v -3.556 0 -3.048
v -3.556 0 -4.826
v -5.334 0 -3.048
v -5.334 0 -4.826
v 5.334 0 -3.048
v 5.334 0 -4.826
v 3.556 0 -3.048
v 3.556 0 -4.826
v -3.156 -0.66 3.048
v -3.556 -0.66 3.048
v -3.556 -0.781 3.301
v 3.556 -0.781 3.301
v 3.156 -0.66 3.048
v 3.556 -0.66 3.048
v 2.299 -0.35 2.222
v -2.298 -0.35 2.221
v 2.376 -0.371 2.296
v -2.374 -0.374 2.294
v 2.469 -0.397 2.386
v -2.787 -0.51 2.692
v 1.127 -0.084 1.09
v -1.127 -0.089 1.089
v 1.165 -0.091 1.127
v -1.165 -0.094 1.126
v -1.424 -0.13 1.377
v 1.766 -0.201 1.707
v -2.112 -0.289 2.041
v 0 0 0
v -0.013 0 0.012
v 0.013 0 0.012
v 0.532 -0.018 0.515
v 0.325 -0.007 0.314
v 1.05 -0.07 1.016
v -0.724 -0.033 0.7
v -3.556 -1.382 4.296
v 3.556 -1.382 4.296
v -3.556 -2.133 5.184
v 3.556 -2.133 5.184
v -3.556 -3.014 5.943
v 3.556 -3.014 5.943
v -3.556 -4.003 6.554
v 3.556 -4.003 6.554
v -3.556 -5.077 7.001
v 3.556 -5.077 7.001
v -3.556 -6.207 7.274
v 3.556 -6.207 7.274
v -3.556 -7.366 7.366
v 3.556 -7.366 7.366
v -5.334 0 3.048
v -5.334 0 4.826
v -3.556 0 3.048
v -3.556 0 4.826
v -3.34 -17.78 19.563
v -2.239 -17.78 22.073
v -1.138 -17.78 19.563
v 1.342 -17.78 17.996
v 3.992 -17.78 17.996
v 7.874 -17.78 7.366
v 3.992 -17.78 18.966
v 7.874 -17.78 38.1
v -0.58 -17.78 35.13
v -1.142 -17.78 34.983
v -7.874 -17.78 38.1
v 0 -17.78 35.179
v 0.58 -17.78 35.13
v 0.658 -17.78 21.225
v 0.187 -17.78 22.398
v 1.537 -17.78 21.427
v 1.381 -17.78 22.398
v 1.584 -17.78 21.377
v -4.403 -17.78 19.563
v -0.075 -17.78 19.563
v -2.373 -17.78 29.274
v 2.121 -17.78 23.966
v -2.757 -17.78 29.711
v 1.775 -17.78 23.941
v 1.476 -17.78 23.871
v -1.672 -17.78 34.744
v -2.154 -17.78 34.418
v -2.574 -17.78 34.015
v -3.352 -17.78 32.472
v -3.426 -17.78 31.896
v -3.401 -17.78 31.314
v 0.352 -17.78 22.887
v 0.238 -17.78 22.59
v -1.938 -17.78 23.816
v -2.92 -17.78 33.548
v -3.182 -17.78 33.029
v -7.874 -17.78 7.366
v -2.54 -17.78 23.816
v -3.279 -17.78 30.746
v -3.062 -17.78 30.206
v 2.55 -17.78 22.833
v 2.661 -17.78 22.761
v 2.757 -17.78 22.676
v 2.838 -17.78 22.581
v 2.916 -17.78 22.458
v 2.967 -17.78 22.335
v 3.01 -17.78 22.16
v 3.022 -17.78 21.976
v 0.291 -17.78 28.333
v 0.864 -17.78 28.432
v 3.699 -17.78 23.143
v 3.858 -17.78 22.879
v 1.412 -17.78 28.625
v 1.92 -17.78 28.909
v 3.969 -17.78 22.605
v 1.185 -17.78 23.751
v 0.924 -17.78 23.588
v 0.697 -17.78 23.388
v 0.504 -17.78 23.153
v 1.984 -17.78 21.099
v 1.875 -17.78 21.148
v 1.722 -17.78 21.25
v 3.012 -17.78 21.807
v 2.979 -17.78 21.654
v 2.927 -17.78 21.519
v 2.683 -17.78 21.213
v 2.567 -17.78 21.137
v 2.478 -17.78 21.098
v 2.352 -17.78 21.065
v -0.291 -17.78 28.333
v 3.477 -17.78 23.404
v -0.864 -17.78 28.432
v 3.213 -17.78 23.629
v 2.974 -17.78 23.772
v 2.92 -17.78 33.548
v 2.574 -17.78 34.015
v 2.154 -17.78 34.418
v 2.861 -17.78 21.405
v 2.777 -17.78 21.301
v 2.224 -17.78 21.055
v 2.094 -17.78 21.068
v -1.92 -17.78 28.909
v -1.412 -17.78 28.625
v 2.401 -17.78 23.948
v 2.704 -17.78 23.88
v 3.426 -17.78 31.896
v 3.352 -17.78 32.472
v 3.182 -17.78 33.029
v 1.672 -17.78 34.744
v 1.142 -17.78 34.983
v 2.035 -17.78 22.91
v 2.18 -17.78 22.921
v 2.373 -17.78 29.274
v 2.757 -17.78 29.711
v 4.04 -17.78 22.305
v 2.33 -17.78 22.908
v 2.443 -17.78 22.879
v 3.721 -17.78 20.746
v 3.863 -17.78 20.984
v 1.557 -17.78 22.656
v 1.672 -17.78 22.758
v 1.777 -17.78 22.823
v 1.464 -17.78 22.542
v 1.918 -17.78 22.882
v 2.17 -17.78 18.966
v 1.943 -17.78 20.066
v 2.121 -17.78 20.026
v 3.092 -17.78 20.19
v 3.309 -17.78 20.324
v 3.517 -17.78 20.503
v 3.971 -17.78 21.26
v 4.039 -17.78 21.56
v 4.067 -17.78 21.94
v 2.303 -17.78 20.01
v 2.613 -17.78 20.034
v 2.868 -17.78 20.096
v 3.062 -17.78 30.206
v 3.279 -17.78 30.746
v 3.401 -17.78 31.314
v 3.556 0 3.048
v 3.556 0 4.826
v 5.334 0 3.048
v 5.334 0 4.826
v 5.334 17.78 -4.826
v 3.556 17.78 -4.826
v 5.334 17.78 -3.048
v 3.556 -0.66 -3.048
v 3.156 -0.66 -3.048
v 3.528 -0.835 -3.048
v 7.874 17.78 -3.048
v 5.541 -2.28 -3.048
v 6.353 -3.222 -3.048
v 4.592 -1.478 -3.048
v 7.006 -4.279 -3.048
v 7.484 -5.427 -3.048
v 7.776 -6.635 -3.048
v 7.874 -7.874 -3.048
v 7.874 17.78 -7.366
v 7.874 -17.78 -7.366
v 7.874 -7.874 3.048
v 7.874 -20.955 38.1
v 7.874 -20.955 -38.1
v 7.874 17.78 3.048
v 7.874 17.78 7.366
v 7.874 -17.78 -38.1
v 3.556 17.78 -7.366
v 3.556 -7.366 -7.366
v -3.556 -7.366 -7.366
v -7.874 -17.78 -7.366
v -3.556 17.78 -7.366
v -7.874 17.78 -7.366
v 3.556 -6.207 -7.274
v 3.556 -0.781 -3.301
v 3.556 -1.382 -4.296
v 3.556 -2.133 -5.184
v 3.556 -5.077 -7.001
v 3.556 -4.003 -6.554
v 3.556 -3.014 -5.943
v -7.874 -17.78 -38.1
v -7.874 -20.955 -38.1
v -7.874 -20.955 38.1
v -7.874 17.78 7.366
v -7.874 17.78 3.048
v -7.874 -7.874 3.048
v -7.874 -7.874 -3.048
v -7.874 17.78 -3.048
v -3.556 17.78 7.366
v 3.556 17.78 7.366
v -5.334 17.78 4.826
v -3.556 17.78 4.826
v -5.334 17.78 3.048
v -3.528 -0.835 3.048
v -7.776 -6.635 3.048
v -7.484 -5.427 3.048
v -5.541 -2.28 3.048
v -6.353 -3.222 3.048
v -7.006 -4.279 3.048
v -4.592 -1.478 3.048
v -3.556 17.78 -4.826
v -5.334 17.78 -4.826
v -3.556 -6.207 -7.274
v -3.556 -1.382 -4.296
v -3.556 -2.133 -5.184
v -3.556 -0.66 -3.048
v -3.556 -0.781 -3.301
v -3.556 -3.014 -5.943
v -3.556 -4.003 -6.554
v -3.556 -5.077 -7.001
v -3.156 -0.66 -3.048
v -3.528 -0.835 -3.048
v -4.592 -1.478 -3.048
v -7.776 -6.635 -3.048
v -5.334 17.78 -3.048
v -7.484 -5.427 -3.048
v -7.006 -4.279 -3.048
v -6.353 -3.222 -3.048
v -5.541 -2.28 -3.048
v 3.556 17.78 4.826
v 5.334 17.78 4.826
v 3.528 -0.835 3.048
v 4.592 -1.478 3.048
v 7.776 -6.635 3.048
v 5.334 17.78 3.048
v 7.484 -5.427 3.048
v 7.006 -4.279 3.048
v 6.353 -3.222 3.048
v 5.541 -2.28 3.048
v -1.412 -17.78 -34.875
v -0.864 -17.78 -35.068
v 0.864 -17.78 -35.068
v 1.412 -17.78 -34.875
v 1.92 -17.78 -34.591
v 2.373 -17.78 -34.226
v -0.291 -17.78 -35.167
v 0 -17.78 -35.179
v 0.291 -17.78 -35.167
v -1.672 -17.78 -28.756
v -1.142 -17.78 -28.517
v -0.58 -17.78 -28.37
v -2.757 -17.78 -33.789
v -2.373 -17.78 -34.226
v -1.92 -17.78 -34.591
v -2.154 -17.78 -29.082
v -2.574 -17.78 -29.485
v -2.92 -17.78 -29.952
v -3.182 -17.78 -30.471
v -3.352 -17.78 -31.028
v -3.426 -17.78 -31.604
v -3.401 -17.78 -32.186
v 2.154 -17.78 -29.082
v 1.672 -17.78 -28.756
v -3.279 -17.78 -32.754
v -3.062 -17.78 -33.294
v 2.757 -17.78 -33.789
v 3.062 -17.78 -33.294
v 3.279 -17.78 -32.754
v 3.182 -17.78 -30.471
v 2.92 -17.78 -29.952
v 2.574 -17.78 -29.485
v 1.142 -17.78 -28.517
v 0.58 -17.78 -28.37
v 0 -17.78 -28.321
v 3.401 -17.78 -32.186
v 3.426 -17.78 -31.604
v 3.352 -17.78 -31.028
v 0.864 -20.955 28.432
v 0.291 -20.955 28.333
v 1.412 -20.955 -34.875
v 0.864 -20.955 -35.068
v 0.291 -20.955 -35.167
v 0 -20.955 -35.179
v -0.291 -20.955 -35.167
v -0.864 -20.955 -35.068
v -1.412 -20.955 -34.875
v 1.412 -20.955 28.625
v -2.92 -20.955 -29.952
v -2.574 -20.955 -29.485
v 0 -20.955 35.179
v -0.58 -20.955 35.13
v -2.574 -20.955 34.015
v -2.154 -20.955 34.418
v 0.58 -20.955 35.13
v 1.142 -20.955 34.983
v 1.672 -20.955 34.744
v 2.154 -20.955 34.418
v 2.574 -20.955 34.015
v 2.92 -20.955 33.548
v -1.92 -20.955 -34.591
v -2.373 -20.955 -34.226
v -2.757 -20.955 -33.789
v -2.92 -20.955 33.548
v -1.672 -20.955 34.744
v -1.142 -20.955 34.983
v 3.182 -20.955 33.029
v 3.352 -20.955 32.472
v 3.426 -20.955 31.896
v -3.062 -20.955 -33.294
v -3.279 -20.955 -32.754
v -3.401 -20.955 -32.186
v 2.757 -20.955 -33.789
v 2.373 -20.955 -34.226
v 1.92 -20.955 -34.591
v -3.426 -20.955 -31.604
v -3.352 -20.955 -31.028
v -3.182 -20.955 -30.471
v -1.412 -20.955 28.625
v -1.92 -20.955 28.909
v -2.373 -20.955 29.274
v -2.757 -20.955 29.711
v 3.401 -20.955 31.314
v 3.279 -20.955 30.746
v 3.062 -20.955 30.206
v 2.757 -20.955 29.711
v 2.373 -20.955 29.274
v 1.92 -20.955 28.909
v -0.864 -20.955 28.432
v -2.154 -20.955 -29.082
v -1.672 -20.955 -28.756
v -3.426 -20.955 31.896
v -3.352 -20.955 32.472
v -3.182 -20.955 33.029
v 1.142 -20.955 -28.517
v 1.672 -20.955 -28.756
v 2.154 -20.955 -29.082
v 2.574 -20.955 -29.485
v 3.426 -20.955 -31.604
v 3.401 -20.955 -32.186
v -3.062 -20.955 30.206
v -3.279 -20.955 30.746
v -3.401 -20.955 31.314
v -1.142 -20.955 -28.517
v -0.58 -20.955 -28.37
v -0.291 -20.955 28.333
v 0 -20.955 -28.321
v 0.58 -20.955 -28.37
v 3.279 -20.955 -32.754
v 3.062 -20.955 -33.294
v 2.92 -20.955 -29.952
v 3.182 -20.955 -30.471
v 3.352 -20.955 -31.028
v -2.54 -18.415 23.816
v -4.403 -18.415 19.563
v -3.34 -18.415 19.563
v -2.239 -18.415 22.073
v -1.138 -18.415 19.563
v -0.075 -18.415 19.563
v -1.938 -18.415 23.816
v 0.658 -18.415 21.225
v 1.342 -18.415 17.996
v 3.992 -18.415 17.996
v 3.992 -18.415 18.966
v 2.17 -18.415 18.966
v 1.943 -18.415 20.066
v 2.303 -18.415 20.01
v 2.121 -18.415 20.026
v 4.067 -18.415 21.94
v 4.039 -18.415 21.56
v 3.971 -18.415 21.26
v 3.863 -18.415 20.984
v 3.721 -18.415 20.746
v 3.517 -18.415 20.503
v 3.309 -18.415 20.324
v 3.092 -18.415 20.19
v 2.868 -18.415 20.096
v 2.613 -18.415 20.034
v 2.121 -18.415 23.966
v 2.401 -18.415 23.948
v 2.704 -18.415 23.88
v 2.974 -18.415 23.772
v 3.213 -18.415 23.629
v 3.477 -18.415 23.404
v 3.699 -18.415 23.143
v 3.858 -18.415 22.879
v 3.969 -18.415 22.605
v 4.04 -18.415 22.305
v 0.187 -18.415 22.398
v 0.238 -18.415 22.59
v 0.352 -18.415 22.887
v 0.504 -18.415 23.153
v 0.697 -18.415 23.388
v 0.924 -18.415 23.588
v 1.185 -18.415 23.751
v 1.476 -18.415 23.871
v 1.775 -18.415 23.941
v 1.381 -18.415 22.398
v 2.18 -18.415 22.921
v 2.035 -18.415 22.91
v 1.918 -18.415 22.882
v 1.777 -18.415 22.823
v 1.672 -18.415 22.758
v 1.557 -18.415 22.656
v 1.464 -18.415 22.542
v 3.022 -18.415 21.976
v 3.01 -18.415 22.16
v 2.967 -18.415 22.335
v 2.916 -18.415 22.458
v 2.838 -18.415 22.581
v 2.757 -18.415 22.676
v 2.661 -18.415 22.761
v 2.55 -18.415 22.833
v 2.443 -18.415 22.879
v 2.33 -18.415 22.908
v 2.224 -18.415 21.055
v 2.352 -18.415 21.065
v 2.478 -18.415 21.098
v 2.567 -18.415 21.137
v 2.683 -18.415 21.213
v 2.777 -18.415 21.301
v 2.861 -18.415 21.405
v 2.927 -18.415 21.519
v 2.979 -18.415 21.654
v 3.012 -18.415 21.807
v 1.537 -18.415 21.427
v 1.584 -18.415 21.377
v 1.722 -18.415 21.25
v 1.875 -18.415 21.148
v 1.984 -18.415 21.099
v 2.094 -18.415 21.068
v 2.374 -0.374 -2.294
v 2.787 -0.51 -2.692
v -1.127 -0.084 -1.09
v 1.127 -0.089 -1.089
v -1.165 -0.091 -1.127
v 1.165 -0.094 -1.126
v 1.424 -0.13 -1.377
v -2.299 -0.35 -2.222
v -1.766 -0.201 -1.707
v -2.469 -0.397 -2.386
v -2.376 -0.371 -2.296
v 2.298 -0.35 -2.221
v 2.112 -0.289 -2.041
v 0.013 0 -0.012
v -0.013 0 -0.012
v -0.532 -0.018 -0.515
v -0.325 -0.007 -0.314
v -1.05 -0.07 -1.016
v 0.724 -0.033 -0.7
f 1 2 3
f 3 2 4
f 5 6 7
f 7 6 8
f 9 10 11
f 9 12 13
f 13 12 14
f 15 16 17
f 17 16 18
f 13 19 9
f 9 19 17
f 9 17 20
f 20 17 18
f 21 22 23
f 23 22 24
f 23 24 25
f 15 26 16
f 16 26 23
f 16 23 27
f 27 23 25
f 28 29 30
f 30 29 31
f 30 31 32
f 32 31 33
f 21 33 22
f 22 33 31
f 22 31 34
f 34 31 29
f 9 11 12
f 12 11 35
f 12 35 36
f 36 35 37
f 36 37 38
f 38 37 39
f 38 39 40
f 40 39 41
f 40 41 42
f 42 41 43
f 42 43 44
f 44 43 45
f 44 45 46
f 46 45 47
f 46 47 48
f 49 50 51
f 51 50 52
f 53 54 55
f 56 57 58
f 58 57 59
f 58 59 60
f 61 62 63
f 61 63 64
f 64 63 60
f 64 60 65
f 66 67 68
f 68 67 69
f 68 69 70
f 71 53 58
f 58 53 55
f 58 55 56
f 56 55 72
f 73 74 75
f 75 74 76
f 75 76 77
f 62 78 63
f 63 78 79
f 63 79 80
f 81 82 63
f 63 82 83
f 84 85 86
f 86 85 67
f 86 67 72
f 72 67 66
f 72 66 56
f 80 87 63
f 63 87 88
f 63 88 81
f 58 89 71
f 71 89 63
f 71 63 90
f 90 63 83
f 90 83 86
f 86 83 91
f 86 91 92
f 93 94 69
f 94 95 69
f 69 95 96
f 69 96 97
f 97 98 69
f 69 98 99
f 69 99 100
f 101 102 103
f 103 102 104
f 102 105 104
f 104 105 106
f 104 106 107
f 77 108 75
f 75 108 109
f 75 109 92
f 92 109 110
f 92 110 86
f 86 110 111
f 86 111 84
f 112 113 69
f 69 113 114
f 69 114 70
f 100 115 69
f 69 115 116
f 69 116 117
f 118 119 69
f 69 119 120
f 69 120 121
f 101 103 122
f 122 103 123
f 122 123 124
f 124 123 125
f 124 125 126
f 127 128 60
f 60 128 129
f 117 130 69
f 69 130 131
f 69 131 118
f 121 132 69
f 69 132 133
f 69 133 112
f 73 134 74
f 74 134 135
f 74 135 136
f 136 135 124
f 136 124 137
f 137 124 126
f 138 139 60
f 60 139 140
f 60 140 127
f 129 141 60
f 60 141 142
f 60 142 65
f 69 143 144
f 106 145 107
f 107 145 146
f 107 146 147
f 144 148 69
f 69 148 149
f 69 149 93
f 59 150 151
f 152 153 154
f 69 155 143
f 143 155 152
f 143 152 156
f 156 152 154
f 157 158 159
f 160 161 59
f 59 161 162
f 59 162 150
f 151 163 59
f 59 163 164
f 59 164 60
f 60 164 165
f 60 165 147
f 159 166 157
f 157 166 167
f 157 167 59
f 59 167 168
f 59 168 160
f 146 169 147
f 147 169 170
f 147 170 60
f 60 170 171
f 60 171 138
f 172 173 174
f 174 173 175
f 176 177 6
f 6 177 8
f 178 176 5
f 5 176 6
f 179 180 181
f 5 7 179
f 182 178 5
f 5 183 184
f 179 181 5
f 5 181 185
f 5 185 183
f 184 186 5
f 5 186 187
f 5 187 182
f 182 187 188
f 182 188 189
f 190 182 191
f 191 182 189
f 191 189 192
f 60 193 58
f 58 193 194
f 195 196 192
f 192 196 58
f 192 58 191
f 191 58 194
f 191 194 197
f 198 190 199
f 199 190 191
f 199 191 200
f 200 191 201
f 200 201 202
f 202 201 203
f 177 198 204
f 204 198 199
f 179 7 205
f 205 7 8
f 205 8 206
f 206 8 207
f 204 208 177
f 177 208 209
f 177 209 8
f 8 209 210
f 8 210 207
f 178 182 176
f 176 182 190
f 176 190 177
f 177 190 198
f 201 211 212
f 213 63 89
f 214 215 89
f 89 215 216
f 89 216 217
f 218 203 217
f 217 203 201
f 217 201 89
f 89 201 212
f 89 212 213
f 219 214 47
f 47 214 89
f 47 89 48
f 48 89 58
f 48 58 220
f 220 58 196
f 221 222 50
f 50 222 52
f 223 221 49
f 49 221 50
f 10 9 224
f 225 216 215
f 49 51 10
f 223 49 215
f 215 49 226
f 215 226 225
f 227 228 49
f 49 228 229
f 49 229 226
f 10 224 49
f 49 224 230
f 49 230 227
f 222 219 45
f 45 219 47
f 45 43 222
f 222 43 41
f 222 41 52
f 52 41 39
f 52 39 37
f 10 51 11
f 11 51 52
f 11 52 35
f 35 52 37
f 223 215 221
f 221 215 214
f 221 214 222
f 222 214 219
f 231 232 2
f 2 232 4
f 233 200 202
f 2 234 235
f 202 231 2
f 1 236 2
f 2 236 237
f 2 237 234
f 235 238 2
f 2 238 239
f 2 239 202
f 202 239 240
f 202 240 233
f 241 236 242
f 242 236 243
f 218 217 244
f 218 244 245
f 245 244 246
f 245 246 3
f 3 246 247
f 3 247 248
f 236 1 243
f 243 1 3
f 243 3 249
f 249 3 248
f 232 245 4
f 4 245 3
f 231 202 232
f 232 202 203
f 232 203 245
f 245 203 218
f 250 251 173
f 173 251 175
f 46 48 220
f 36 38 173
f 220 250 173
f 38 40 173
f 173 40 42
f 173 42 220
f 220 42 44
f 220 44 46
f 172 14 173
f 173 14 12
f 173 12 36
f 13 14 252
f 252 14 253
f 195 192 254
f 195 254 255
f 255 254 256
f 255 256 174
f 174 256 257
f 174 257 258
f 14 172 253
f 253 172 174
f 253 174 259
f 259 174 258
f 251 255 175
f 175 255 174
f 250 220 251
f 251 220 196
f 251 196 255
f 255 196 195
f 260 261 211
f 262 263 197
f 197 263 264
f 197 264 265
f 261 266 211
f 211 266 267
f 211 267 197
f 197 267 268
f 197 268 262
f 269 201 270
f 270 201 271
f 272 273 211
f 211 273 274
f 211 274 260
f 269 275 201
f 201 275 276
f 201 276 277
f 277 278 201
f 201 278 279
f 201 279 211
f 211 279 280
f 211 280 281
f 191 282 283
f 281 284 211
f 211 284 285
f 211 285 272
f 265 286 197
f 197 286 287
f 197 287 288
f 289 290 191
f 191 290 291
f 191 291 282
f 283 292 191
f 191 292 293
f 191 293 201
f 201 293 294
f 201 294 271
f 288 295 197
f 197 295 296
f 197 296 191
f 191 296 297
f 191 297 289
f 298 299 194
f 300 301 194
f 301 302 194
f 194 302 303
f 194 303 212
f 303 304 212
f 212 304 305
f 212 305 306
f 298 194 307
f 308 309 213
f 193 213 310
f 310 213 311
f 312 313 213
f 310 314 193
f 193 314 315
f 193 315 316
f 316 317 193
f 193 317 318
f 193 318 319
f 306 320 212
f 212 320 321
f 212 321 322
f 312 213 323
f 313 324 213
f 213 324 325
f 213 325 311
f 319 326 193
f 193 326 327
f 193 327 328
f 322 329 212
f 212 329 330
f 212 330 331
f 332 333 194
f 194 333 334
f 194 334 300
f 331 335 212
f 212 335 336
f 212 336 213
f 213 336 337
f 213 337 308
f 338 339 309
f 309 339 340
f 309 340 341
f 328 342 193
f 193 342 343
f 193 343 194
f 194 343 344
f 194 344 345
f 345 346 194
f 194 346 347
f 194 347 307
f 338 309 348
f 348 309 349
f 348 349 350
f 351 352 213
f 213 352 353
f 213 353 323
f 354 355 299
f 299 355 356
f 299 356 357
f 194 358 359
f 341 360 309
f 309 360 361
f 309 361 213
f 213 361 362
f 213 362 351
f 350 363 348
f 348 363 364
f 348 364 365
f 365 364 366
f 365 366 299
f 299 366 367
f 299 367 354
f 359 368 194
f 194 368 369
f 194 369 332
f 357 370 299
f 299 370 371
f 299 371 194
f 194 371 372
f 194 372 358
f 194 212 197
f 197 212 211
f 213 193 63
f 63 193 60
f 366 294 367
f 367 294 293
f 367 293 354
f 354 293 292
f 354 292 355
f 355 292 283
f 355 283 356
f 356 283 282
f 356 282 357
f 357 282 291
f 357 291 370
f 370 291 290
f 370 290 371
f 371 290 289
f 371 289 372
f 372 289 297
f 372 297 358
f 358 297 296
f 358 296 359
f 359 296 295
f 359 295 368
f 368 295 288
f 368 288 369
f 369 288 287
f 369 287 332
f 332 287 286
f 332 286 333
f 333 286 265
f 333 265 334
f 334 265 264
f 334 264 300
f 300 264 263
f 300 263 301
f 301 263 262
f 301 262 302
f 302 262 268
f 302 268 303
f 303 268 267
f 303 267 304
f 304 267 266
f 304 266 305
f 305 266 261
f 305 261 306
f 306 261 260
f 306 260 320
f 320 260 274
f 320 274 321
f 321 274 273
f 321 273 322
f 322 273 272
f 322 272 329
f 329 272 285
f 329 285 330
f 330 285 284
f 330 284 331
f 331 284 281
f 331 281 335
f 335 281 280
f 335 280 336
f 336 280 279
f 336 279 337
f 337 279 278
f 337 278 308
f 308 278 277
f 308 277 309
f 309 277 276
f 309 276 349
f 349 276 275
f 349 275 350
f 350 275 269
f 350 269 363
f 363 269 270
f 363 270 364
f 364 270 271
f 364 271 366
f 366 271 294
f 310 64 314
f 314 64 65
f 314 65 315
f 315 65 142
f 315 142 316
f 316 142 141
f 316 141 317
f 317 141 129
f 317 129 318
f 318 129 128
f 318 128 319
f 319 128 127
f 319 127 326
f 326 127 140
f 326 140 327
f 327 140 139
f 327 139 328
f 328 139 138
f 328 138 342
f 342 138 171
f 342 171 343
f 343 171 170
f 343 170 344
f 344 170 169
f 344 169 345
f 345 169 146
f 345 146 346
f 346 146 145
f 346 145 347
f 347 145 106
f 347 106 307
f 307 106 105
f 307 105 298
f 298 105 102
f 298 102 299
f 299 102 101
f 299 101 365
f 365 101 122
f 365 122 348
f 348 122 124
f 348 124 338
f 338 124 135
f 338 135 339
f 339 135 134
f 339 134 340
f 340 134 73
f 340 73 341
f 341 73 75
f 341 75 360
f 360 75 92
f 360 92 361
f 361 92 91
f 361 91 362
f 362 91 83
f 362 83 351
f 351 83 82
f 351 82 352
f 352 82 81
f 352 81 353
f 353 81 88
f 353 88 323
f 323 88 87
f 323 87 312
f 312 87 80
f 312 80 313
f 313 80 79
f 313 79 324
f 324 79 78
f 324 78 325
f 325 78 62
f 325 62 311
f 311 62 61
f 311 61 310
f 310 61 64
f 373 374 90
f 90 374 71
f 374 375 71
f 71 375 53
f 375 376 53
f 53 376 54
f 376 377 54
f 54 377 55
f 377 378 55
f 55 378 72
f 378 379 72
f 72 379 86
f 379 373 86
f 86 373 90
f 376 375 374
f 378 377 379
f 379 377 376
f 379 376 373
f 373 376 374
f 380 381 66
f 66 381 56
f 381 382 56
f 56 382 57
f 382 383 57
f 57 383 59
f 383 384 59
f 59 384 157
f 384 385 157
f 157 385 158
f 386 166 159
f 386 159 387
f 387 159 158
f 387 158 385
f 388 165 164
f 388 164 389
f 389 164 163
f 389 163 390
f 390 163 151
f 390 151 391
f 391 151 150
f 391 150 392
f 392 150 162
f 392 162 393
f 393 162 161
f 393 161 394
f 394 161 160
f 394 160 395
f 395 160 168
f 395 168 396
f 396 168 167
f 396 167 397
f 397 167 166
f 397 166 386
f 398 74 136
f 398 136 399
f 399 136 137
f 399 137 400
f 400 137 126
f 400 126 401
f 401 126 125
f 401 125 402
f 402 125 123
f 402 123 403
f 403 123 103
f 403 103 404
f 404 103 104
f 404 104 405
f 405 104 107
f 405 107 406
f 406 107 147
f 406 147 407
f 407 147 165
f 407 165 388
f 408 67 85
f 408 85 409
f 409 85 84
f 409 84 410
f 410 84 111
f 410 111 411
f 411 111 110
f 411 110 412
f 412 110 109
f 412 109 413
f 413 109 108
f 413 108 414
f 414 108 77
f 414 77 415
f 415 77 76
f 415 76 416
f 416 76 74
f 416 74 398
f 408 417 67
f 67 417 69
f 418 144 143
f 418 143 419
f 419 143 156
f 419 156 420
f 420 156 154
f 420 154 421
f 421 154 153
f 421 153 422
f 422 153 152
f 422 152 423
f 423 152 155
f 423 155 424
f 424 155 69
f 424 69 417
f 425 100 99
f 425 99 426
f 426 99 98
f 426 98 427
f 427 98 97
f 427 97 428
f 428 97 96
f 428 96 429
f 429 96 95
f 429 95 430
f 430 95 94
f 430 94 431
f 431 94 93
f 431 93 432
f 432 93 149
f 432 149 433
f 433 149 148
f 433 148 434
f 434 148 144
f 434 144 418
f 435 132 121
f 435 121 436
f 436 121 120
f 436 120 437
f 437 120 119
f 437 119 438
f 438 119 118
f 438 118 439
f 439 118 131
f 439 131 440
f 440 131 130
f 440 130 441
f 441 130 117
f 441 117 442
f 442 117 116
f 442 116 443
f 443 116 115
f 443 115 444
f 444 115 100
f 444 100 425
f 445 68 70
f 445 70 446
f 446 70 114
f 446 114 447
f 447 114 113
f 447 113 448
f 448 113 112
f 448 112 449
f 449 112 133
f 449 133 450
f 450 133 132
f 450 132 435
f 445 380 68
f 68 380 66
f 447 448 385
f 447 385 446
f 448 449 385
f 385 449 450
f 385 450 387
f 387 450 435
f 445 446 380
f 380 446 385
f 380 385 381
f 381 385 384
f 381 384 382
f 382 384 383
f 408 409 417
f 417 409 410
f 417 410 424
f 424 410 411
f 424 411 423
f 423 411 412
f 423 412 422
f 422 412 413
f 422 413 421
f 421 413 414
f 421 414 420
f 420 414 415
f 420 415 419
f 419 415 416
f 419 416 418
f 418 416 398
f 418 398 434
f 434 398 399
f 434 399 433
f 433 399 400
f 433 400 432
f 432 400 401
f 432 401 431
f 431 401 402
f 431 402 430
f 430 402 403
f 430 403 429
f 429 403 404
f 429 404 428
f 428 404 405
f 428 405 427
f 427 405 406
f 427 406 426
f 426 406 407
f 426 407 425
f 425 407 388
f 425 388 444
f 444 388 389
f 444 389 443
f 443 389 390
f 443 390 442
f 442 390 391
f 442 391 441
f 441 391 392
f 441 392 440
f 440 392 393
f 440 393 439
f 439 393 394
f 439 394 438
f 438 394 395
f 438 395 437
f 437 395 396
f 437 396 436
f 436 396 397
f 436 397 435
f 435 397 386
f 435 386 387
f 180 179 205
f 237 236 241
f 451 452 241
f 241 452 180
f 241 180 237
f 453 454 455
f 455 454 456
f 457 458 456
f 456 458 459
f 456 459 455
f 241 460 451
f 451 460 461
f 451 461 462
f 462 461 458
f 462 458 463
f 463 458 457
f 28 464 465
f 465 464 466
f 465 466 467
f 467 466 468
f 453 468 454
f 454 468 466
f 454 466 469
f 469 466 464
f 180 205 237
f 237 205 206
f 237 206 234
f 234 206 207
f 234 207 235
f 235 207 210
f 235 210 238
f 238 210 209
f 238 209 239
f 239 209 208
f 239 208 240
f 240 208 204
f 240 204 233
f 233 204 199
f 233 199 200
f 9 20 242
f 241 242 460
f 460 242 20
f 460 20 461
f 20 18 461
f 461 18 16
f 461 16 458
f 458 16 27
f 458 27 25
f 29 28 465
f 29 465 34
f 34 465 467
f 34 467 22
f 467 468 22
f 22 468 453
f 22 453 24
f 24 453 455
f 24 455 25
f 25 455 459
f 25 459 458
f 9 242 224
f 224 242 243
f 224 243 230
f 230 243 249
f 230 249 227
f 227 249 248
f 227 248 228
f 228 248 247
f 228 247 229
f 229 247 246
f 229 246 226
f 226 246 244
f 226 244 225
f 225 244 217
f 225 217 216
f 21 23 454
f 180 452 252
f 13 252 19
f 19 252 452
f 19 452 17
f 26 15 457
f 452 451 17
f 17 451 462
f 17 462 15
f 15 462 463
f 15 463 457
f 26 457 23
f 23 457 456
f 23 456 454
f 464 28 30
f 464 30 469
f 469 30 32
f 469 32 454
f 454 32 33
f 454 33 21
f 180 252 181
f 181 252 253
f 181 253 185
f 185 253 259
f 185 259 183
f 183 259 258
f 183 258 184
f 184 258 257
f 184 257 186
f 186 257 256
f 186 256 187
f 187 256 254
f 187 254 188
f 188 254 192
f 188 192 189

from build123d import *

# Parameters (mm, degrees)
BOSS_EXTRUDE1_DEPTH            = 17.78
BOSS_EXTRUDE1_2_DEPTH          = 17.78
BOSS_EXTRUDE1_3_DEPTH          = 17.78
BOSS_EXTRUDE1_4_DEPTH          = 17.78
SKETCH2_W                      = 15.748
SKETCH2_H                      = 14.732
BOSS_EXTRUDE2_DEPTH            = 17.78
SKETCH3_W                      = 15.748
SKETCH3_H                      = 76.2
SKETCH3_R                      = 3.429
BOSS_EXTRUDE3_DEPTH            = 3.175
CUT_EXTRUDE3_DEPTH             = 0.635
CUT_EXTRUDE4_REACH             = 46.19
CUT_EXTRUDE4_DIRECTION_2_REACH = 46.19
CUT_EXTRUDE5_REACH             = 46.19
CUT_EXTRUDE5_DIRECTION_2_REACH = 46.19


with BuildPart() as part:
    # Sketch1 → Boss-Extrude1 (new body)
    with BuildSketch(Plane(origin=(0, 0, 0), x_dir=(1, 0, 0), z_dir=(0, 1, 0))):
        Polygon((-5.334, 4.826), (-5.334, 3.048), (-7.874, 3.048), (-7.874, 7.366), (-3.556, 7.366), (-3.556, 4.826), align=None)
    extrude(amount=BOSS_EXTRUDE1_DEPTH)



with BuildPart() as body_2:
    # Sketch1 → Boss-Extrude1 2 (new body)
    with BuildSketch(Plane(origin=(0, 0, 0), x_dir=(1, 0, 0), z_dir=(0, 1, 0))):
        Polygon((7.874, 3.048), (7.874, 7.366), (3.556, 7.366), (3.556, 4.826), (5.334, 4.826), (5.334, 3.048), align=None)
    extrude(amount=BOSS_EXTRUDE1_2_DEPTH)


with BuildPart() as body_3:
    # Sketch1 → Boss-Extrude1 3 (new body)
    with BuildSketch(Plane(origin=(0, 0, 0), x_dir=(1, 0, 0), z_dir=(0, 1, 0))):
        Polygon((5.334, -3.048), (7.874, -3.048), (7.874, -7.366), (3.556, -7.366), (3.556, -4.826), (5.334, -4.826), align=None)
    extrude(amount=BOSS_EXTRUDE1_3_DEPTH)


with BuildPart() as body_4:
    # Sketch1 → Boss-Extrude1 4 (new body)
    with BuildSketch(Plane(origin=(0, 0, 0), x_dir=(1, 0, 0), z_dir=(0, 1, 0))):
        Polygon((-5.334, -3.048), (-7.874, -3.048), (-7.874, -7.366), (-3.556, -7.366), (-3.556, -4.826), (-5.334, -4.826), align=None)
    extrude(amount=BOSS_EXTRUDE1_4_DEPTH)


with BuildPart() as part_1:
    add(part.part)

    add(body_2.part)  # Boss-Extrude2 merges body 2

    add(body_3.part)  # Boss-Extrude2 merges body 3

    add(body_4.part)  # Boss-Extrude2 merges body 4
    # Sketch2 → Boss-Extrude2 (add)
    with BuildSketch(Plane(origin=(0, 0, 0), x_dir=(-1, 0, 0), z_dir=(0, -1, 0))):
        Rectangle(SKETCH2_W, SKETCH2_H)
    extrude(amount=BOSS_EXTRUDE2_DEPTH)

    # Sketch3 → Boss-Extrude3 (add)
    with BuildSketch(Plane(origin=(0, -17.78, 0), x_dir=(-1, 0, 0), z_dir=(0, -1, 0))):
        Rectangle(SKETCH3_W, SKETCH3_H)
        with Locations(Location((0, 31.75, 0), (0, 0, 90))):
            Circle(SKETCH3_R, mode=Mode.SUBTRACT)
        with Locations(Location((0, -31.75, 0), (0, 0, 270))):
            Circle(SKETCH3_R, mode=Mode.SUBTRACT)
    extrude(amount=BOSS_EXTRUDE3_DEPTH)

    # Sketch5 → Cut-Extrude3 (cut)
    with BuildSketch(Plane(origin=(0, -17.78, 0), x_dir=(1, 0, 0), z_dir=(0, 1, 0))):
        Polygon((-4.402938034, -19.56265828), (-3.33951656, -19.56265828), (-2.238782051, -22.073125862), (-1.138047543, -19.56265828), (-0.074626068, -19.56265828), (-1.937945713, -23.816344178), (-2.539618389, -23.816344178), align=None)
        with BuildLine():
            Line((1.342103198, -17.995510844), (3.992494658, -17.995510844))
            Line((3.992494658, -17.995510844), (3.992494658, -18.965649733))
            Line((3.992494658, -18.965649733), (2.169986144, -18.965649733))
            Line((2.169986144, -18.965649733), (1.942609842, -20.066384242))
            add(Edge.make_bspline(
                [(1.942609842, -20.066384242), (1.973593118, -20.057755008), (2.034698504, -20.040736387), (2.126753844, -20.023668863), (2.215968297, -20.012606236), (2.274510277, -20.011130629), (2.302913829, -20.01041469)],
                knots=[0, 0, 0, 0, 1.05461699, 2.079921384, 3.068411212, 4, 4, 4, 4], degree=3))
            add(Edge.make_bspline(
                [(2.302913829, -20.01041469), (2.364808143, -20.011832963), (2.486815471, -20.01462869), (2.66529671, -20.04116926), (2.83620304, -20.082969854), (2.999011469, -20.142586126), (3.153562954, -20.220178243), (3.300044843, -20.314042954), (3.438636917, -20.42434512), (3.566877199, -20.551153798), (3.684709726, -20.690392598), (3.787158388, -20.840994093), (3.874655939, -21.000810853), (3.944248465, -21.170836295), (3.99917682, -21.350002545), (4.038869276, -21.538424417), (4.062341408, -21.736325221), (4.065506481, -21.87133879), (4.067120726, -21.940198177)],
                knots=[0, 0, 0, 0, 1.01440847, 1.999622559, 2.951875003, 3.895578053, 4.836219714, 5.782137149, 6.743708247, 7.735272588, 8.734977101, 9.730283169, 10.717124674, 11.717316708, 12.737475749, 13.78628267, 14.87096371, 16, 16, 16, 16], degree=3))
            add(Edge.make_bspline(
                [(4.067120726, -21.940198177), (4.065148093, -22.009839278), (4.061255511, -22.147261527), (4.035859977, -22.349320843), (3.991036403, -22.542848052), (3.92946674, -22.728361222), (3.848352651, -22.904496875), (3.750801857, -23.073079646), (3.635165037, -23.232858198), (3.502576985, -23.382194608), (3.358436381, -23.518690953), (3.204960663, -23.63876705), (3.043228044, -23.739810112), (2.873234622, -23.821469989), (2.695955704, -23.88607783), (2.511337482, -23.933109254), (2.318482737, -23.960079163), (2.187559423, -23.963737055), (2.121012787, -23.965596314)],
                knots=[0, 0, 0, 0, 1.06808661, 2.107647099, 3.116961351, 4.110378221, 5.100014249, 6.085620622, 7.093190682, 8.119403071, 9.144090782, 10.133780668, 11.103064255, 12.062861538, 13.020824475, 13.992378307, 14.979551724, 16, 16, 16, 16], degree=3))
            add(Edge.make_bspline(
                [(2.121012787, -23.965596314), (2.061502111, -23.964075324), (1.944134605, -23.961075614), (1.77125742, -23.942637813), (1.604584616, -23.910039607), (1.445001044, -23.862861563), (1.290827618, -23.804796161), (1.143846625, -23.732174402), (1.003250382, -23.646379103), (0.869438127, -23.54897603), (0.744584119, -23.439255246), (0.630630611, -23.319146944), (0.526887714, -23.19016503), (0.435575361, -23.050718259), (0.356979792, -22.901012655), (0.287279637, -22.742812535), (0.230229362, -22.574465784), (0.201277991, -22.457758463), (0.186565171, -22.398448878)],
                knots=[0, 0, 0, 0, 1.054957082, 2.080596141, 3.077793124, 4.061112343, 5.027190972, 5.994718051, 6.962465889, 7.943658696, 8.924948258, 9.904494768, 10.875059, 11.855380583, 12.854004648, 13.869083016, 14.917087635, 16, 16, 16, 16], degree=3))
            Line((0.186565171, -22.398448878), (1.380582265, -22.398448878))
            add(Edge.make_bspline(
                [(1.380582265, -22.398448878), (1.402408926, -22.439548005), (1.444826552, -22.519419468), (1.525514253, -22.625460837), (1.615839012, -22.71588836), (1.71498605, -22.791585534), (1.823597778, -22.848296569), (1.937248474, -22.891303595), (2.057365883, -22.916155762), (2.139171142, -22.919262529), (2.180480435, -22.920831357)],
                knots=[0, 0, 0, 0, 1.104910296, 2.147267069, 3.153527244, 4.136738762, 5.099945312, 6.05603338, 7.018353, 8, 8, 8, 8], degree=3))
            add(Edge.make_bspline(
                [(2.180480435, -22.920831357), (2.209272459, -22.919748068), (2.265921249, -22.917616678), (2.349384285, -22.906341091), (2.429053419, -22.884985384), (2.505520973, -22.855412696), (2.578992357, -22.818532212), (2.648414335, -22.771973005), (2.714994724, -22.718381632), (2.777719899, -22.656885349), (2.834530829, -22.588331299), (2.884347799, -22.514665298), (2.928891041, -22.437524221), (2.961884902, -22.353852317), (2.988904083, -22.266148059), (3.008802101, -22.173749865), (3.020693411, -22.076549824), (3.021794228, -22.01019408), (3.022355769, -21.976345179)],
                knots=[0, 0, 0, 0, 0.978869489, 1.925942215, 2.855067702, 3.774946051, 4.70828698, 5.642468714, 6.60995405, 7.609372294, 8.622401667, 9.629904756, 10.629323, 11.642352373, 12.678539694, 13.745912462, 14.850161547, 16, 16, 16, 16], degree=3))
            add(Edge.make_bspline(
                [(3.022355769, -21.976345179), (3.021704036, -21.943281988), (3.020435422, -21.878923684), (3.009941194, -21.784422641), (2.99116722, -21.694758253), (2.965587521, -21.609243759), (2.932842452, -21.528398443), (2.892825789, -21.451741076), (2.845366576, -21.379659132), (2.790210015, -21.31362013), (2.731391627, -21.253047278), (2.668201777, -21.200070745), (2.601209774, -21.156103901), (2.532497311, -21.117719567), (2.459321633, -21.089784285), (2.383328169, -21.070546287), (2.304596835, -21.056430218), (2.250895901, -21.055600847), (2.223623631, -21.055179648)],
                knots=[0, 0, 0, 0, 1.166249705, 2.270133367, 3.348514167, 4.393962215, 5.415026464, 6.420877785, 7.440098956, 8.453121383, 9.451844239, 10.415694839, 11.355045125, 12.27538808, 13.187007209, 14.108269027, 15.039275622, 16, 16, 16, 16], degree=3))
            add(Edge.make_bspline(
                [(2.223623631, -21.055179648), (2.193999608, -21.056303715), (2.13462671, -21.058556587), (2.046413445, -21.076887601), (1.959263786, -21.106554059), (1.872693092, -21.14748364), (1.787560727, -21.201047546), (1.701620007, -21.263871867), (1.617747551, -21.340521386), (1.56441911, -21.397610121), (1.536830596, -21.427143957)],
                knots=[0, 0, 0, 0, 0.88288272, 1.769486374, 2.674910571, 3.623812639, 4.617874466, 5.670434592, 6.794841017, 8, 8, 8, 8], degree=3))
            Line((1.536830596, -21.427143957), (0.657642228, -21.225420366))
            Line((0.657642228, -21.225420366), (1.342103198, -17.995510844))
        make_face()
    extrude(amount=-CUT_EXTRUDE3_DEPTH, mode=Mode.SUBTRACT)

    # Cut-Extrude4: up to this face of the body (flat: up to its plane)
    cut_extrude4_end = Plane(part_1.part.faces().sort_by_distance((-3.556, 8.89, 6.096))[0])
    # Sketch6 → Cut-Extrude4 (cut, up to the picked face)
    with BuildSketch(Plane(origin=(0, 0, 0), x_dir=(0, 0, -1), z_dir=(1, 0, 0)), mode=Mode.PRIVATE) as cut_extrude4_sk1:
        with BuildLine():
            Line((-7.366, -7.366), (-7.366, 2.54))
            Line((-7.366, 2.54), (7.366, 2.54))
            Line((7.366, 2.54), (7.366, -7.366))
            ThreePointArc((7.366, -7.366), (0, 0), (-7.366, -7.366))
        make_face()
    cut_extrude4_tool1 = split(extrude(cut_extrude4_sk1.sketch, amount=-CUT_EXTRUDE4_REACH, mode=Mode.PRIVATE), bisect_by=cut_extrude4_end, keep=Keep.BOTH, mode=Mode.PRIVATE)
    add(cut_extrude4_tool1.solids().sort_by(Axis((0, 0.151656, 0), (-1, 0, 0)))[0], mode=Mode.SUBTRACT)

    # Cut-Extrude4 direction 2: up to this face of the body (flat: up to its plane)
    cut_extrude4_direction_2_end = Plane(part_1.part.faces().sort_by_distance((3.556, 8.89, 6.096))[0])
    # Sketch6 → Cut-Extrude4 direction 2 (cut, up to the picked face)
    with BuildSketch(Plane(origin=(0, 0, 0), x_dir=(0, 0, -1), z_dir=(1, 0, 0)), mode=Mode.PRIVATE) as cut_extrude4_direction_2_sk1:
        with BuildLine():
            Line((-7.366, -7.366), (-7.366, 2.54))
            Line((-7.366, 2.54), (7.366, 2.54))
            Line((7.366, 2.54), (7.366, -7.366))
            ThreePointArc((7.366, -7.366), (0, 0), (-7.366, -7.366))
        make_face()
    cut_extrude4_direction_2_tool1 = split(extrude(cut_extrude4_direction_2_sk1.sketch, amount=CUT_EXTRUDE4_DIRECTION_2_REACH, mode=Mode.PRIVATE), bisect_by=cut_extrude4_direction_2_end, keep=Keep.BOTH, mode=Mode.PRIVATE)
    add(cut_extrude4_direction_2_tool1.solids().sort_by(Axis((0, 0.151656, 0), (1, 0, 0)))[0], mode=Mode.SUBTRACT)

    # Cut-Extrude5: up to this face of the body (flat: up to its plane)
    cut_extrude5_end = Plane(part_1.part.faces().sort_by_distance((-6.604, 8.89, -3.048))[0])
    # Sketch7 → Cut-Extrude5 (cut, up to the picked face)
    with BuildSketch(Plane.XY, mode=Mode.PRIVATE) as cut_extrude5_sk1:
        with BuildLine():
            Line((-7.874, -7.874), (-7.874, 4.538671937))
            Line((-7.874, 4.538671937), (7.874, 4.538671937))
            Line((7.874, 4.538671937), (7.874, -7.874))
            ThreePointArc((7.874, -7.874), (0, 0), (-7.874, -7.874))
        make_face()
    cut_extrude5_tool1 = split(extrude(cut_extrude5_sk1.sketch, amount=-CUT_EXTRUDE5_REACH, mode=Mode.PRIVATE), bisect_by=cut_extrude5_end, keep=Keep.BOTH, mode=Mode.PRIVATE)
    add(cut_extrude5_tool1.solids().sort_by(Axis((0, 1.176505, 0), (0, 0, -1)))[0], mode=Mode.SUBTRACT)

    # Cut-Extrude5 direction 2: up to this face of the body (flat: up to its plane)
    cut_extrude5_direction_2_end = Plane(part_1.part.faces().sort_by_distance((-6.604, 8.89, 3.048))[0])
    # Sketch7 → Cut-Extrude5 direction 2 (cut, up to the picked face)
    with BuildSketch(Plane.XY, mode=Mode.PRIVATE) as cut_extrude5_direction_2_sk1:
        with BuildLine():
            Line((-7.874, -7.874), (-7.874, 4.538671937))
            Line((-7.874, 4.538671937), (7.874, 4.538671937))
            Line((7.874, 4.538671937), (7.874, -7.874))
            ThreePointArc((7.874, -7.874), (0, 0), (-7.874, -7.874))
        make_face()
    cut_extrude5_direction_2_tool1 = split(extrude(cut_extrude5_direction_2_sk1.sketch, amount=CUT_EXTRUDE5_DIRECTION_2_REACH, mode=Mode.PRIVATE), bisect_by=cut_extrude5_direction_2_end, keep=Keep.BOTH, mode=Mode.PRIVATE)
    add(cut_extrude5_direction_2_tool1.solids().sort_by(Axis((0, 1.176505, 0), (0, 0, 1)))[0], mode=Mode.SUBTRACT)


solid = part_1.part
